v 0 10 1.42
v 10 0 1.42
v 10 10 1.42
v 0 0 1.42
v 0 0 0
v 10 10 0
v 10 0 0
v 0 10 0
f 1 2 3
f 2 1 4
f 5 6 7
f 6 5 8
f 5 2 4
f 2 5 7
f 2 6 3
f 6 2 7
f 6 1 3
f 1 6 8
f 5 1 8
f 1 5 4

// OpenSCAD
/* Warning, this is a very basic generator with a lot of approximation 
input data : [LFBGA, AAA, 10x10x1.42mm, 100, , A, C04-01066A]
generated by com.zoubworld.electronics.cad.model3d.Basic
Date : Sun Feb 15 10:50:49 CET 2026
*/

//body
color("black")
translate([0,0,0])
cube([10.0,10.0,1.42], center=false);
